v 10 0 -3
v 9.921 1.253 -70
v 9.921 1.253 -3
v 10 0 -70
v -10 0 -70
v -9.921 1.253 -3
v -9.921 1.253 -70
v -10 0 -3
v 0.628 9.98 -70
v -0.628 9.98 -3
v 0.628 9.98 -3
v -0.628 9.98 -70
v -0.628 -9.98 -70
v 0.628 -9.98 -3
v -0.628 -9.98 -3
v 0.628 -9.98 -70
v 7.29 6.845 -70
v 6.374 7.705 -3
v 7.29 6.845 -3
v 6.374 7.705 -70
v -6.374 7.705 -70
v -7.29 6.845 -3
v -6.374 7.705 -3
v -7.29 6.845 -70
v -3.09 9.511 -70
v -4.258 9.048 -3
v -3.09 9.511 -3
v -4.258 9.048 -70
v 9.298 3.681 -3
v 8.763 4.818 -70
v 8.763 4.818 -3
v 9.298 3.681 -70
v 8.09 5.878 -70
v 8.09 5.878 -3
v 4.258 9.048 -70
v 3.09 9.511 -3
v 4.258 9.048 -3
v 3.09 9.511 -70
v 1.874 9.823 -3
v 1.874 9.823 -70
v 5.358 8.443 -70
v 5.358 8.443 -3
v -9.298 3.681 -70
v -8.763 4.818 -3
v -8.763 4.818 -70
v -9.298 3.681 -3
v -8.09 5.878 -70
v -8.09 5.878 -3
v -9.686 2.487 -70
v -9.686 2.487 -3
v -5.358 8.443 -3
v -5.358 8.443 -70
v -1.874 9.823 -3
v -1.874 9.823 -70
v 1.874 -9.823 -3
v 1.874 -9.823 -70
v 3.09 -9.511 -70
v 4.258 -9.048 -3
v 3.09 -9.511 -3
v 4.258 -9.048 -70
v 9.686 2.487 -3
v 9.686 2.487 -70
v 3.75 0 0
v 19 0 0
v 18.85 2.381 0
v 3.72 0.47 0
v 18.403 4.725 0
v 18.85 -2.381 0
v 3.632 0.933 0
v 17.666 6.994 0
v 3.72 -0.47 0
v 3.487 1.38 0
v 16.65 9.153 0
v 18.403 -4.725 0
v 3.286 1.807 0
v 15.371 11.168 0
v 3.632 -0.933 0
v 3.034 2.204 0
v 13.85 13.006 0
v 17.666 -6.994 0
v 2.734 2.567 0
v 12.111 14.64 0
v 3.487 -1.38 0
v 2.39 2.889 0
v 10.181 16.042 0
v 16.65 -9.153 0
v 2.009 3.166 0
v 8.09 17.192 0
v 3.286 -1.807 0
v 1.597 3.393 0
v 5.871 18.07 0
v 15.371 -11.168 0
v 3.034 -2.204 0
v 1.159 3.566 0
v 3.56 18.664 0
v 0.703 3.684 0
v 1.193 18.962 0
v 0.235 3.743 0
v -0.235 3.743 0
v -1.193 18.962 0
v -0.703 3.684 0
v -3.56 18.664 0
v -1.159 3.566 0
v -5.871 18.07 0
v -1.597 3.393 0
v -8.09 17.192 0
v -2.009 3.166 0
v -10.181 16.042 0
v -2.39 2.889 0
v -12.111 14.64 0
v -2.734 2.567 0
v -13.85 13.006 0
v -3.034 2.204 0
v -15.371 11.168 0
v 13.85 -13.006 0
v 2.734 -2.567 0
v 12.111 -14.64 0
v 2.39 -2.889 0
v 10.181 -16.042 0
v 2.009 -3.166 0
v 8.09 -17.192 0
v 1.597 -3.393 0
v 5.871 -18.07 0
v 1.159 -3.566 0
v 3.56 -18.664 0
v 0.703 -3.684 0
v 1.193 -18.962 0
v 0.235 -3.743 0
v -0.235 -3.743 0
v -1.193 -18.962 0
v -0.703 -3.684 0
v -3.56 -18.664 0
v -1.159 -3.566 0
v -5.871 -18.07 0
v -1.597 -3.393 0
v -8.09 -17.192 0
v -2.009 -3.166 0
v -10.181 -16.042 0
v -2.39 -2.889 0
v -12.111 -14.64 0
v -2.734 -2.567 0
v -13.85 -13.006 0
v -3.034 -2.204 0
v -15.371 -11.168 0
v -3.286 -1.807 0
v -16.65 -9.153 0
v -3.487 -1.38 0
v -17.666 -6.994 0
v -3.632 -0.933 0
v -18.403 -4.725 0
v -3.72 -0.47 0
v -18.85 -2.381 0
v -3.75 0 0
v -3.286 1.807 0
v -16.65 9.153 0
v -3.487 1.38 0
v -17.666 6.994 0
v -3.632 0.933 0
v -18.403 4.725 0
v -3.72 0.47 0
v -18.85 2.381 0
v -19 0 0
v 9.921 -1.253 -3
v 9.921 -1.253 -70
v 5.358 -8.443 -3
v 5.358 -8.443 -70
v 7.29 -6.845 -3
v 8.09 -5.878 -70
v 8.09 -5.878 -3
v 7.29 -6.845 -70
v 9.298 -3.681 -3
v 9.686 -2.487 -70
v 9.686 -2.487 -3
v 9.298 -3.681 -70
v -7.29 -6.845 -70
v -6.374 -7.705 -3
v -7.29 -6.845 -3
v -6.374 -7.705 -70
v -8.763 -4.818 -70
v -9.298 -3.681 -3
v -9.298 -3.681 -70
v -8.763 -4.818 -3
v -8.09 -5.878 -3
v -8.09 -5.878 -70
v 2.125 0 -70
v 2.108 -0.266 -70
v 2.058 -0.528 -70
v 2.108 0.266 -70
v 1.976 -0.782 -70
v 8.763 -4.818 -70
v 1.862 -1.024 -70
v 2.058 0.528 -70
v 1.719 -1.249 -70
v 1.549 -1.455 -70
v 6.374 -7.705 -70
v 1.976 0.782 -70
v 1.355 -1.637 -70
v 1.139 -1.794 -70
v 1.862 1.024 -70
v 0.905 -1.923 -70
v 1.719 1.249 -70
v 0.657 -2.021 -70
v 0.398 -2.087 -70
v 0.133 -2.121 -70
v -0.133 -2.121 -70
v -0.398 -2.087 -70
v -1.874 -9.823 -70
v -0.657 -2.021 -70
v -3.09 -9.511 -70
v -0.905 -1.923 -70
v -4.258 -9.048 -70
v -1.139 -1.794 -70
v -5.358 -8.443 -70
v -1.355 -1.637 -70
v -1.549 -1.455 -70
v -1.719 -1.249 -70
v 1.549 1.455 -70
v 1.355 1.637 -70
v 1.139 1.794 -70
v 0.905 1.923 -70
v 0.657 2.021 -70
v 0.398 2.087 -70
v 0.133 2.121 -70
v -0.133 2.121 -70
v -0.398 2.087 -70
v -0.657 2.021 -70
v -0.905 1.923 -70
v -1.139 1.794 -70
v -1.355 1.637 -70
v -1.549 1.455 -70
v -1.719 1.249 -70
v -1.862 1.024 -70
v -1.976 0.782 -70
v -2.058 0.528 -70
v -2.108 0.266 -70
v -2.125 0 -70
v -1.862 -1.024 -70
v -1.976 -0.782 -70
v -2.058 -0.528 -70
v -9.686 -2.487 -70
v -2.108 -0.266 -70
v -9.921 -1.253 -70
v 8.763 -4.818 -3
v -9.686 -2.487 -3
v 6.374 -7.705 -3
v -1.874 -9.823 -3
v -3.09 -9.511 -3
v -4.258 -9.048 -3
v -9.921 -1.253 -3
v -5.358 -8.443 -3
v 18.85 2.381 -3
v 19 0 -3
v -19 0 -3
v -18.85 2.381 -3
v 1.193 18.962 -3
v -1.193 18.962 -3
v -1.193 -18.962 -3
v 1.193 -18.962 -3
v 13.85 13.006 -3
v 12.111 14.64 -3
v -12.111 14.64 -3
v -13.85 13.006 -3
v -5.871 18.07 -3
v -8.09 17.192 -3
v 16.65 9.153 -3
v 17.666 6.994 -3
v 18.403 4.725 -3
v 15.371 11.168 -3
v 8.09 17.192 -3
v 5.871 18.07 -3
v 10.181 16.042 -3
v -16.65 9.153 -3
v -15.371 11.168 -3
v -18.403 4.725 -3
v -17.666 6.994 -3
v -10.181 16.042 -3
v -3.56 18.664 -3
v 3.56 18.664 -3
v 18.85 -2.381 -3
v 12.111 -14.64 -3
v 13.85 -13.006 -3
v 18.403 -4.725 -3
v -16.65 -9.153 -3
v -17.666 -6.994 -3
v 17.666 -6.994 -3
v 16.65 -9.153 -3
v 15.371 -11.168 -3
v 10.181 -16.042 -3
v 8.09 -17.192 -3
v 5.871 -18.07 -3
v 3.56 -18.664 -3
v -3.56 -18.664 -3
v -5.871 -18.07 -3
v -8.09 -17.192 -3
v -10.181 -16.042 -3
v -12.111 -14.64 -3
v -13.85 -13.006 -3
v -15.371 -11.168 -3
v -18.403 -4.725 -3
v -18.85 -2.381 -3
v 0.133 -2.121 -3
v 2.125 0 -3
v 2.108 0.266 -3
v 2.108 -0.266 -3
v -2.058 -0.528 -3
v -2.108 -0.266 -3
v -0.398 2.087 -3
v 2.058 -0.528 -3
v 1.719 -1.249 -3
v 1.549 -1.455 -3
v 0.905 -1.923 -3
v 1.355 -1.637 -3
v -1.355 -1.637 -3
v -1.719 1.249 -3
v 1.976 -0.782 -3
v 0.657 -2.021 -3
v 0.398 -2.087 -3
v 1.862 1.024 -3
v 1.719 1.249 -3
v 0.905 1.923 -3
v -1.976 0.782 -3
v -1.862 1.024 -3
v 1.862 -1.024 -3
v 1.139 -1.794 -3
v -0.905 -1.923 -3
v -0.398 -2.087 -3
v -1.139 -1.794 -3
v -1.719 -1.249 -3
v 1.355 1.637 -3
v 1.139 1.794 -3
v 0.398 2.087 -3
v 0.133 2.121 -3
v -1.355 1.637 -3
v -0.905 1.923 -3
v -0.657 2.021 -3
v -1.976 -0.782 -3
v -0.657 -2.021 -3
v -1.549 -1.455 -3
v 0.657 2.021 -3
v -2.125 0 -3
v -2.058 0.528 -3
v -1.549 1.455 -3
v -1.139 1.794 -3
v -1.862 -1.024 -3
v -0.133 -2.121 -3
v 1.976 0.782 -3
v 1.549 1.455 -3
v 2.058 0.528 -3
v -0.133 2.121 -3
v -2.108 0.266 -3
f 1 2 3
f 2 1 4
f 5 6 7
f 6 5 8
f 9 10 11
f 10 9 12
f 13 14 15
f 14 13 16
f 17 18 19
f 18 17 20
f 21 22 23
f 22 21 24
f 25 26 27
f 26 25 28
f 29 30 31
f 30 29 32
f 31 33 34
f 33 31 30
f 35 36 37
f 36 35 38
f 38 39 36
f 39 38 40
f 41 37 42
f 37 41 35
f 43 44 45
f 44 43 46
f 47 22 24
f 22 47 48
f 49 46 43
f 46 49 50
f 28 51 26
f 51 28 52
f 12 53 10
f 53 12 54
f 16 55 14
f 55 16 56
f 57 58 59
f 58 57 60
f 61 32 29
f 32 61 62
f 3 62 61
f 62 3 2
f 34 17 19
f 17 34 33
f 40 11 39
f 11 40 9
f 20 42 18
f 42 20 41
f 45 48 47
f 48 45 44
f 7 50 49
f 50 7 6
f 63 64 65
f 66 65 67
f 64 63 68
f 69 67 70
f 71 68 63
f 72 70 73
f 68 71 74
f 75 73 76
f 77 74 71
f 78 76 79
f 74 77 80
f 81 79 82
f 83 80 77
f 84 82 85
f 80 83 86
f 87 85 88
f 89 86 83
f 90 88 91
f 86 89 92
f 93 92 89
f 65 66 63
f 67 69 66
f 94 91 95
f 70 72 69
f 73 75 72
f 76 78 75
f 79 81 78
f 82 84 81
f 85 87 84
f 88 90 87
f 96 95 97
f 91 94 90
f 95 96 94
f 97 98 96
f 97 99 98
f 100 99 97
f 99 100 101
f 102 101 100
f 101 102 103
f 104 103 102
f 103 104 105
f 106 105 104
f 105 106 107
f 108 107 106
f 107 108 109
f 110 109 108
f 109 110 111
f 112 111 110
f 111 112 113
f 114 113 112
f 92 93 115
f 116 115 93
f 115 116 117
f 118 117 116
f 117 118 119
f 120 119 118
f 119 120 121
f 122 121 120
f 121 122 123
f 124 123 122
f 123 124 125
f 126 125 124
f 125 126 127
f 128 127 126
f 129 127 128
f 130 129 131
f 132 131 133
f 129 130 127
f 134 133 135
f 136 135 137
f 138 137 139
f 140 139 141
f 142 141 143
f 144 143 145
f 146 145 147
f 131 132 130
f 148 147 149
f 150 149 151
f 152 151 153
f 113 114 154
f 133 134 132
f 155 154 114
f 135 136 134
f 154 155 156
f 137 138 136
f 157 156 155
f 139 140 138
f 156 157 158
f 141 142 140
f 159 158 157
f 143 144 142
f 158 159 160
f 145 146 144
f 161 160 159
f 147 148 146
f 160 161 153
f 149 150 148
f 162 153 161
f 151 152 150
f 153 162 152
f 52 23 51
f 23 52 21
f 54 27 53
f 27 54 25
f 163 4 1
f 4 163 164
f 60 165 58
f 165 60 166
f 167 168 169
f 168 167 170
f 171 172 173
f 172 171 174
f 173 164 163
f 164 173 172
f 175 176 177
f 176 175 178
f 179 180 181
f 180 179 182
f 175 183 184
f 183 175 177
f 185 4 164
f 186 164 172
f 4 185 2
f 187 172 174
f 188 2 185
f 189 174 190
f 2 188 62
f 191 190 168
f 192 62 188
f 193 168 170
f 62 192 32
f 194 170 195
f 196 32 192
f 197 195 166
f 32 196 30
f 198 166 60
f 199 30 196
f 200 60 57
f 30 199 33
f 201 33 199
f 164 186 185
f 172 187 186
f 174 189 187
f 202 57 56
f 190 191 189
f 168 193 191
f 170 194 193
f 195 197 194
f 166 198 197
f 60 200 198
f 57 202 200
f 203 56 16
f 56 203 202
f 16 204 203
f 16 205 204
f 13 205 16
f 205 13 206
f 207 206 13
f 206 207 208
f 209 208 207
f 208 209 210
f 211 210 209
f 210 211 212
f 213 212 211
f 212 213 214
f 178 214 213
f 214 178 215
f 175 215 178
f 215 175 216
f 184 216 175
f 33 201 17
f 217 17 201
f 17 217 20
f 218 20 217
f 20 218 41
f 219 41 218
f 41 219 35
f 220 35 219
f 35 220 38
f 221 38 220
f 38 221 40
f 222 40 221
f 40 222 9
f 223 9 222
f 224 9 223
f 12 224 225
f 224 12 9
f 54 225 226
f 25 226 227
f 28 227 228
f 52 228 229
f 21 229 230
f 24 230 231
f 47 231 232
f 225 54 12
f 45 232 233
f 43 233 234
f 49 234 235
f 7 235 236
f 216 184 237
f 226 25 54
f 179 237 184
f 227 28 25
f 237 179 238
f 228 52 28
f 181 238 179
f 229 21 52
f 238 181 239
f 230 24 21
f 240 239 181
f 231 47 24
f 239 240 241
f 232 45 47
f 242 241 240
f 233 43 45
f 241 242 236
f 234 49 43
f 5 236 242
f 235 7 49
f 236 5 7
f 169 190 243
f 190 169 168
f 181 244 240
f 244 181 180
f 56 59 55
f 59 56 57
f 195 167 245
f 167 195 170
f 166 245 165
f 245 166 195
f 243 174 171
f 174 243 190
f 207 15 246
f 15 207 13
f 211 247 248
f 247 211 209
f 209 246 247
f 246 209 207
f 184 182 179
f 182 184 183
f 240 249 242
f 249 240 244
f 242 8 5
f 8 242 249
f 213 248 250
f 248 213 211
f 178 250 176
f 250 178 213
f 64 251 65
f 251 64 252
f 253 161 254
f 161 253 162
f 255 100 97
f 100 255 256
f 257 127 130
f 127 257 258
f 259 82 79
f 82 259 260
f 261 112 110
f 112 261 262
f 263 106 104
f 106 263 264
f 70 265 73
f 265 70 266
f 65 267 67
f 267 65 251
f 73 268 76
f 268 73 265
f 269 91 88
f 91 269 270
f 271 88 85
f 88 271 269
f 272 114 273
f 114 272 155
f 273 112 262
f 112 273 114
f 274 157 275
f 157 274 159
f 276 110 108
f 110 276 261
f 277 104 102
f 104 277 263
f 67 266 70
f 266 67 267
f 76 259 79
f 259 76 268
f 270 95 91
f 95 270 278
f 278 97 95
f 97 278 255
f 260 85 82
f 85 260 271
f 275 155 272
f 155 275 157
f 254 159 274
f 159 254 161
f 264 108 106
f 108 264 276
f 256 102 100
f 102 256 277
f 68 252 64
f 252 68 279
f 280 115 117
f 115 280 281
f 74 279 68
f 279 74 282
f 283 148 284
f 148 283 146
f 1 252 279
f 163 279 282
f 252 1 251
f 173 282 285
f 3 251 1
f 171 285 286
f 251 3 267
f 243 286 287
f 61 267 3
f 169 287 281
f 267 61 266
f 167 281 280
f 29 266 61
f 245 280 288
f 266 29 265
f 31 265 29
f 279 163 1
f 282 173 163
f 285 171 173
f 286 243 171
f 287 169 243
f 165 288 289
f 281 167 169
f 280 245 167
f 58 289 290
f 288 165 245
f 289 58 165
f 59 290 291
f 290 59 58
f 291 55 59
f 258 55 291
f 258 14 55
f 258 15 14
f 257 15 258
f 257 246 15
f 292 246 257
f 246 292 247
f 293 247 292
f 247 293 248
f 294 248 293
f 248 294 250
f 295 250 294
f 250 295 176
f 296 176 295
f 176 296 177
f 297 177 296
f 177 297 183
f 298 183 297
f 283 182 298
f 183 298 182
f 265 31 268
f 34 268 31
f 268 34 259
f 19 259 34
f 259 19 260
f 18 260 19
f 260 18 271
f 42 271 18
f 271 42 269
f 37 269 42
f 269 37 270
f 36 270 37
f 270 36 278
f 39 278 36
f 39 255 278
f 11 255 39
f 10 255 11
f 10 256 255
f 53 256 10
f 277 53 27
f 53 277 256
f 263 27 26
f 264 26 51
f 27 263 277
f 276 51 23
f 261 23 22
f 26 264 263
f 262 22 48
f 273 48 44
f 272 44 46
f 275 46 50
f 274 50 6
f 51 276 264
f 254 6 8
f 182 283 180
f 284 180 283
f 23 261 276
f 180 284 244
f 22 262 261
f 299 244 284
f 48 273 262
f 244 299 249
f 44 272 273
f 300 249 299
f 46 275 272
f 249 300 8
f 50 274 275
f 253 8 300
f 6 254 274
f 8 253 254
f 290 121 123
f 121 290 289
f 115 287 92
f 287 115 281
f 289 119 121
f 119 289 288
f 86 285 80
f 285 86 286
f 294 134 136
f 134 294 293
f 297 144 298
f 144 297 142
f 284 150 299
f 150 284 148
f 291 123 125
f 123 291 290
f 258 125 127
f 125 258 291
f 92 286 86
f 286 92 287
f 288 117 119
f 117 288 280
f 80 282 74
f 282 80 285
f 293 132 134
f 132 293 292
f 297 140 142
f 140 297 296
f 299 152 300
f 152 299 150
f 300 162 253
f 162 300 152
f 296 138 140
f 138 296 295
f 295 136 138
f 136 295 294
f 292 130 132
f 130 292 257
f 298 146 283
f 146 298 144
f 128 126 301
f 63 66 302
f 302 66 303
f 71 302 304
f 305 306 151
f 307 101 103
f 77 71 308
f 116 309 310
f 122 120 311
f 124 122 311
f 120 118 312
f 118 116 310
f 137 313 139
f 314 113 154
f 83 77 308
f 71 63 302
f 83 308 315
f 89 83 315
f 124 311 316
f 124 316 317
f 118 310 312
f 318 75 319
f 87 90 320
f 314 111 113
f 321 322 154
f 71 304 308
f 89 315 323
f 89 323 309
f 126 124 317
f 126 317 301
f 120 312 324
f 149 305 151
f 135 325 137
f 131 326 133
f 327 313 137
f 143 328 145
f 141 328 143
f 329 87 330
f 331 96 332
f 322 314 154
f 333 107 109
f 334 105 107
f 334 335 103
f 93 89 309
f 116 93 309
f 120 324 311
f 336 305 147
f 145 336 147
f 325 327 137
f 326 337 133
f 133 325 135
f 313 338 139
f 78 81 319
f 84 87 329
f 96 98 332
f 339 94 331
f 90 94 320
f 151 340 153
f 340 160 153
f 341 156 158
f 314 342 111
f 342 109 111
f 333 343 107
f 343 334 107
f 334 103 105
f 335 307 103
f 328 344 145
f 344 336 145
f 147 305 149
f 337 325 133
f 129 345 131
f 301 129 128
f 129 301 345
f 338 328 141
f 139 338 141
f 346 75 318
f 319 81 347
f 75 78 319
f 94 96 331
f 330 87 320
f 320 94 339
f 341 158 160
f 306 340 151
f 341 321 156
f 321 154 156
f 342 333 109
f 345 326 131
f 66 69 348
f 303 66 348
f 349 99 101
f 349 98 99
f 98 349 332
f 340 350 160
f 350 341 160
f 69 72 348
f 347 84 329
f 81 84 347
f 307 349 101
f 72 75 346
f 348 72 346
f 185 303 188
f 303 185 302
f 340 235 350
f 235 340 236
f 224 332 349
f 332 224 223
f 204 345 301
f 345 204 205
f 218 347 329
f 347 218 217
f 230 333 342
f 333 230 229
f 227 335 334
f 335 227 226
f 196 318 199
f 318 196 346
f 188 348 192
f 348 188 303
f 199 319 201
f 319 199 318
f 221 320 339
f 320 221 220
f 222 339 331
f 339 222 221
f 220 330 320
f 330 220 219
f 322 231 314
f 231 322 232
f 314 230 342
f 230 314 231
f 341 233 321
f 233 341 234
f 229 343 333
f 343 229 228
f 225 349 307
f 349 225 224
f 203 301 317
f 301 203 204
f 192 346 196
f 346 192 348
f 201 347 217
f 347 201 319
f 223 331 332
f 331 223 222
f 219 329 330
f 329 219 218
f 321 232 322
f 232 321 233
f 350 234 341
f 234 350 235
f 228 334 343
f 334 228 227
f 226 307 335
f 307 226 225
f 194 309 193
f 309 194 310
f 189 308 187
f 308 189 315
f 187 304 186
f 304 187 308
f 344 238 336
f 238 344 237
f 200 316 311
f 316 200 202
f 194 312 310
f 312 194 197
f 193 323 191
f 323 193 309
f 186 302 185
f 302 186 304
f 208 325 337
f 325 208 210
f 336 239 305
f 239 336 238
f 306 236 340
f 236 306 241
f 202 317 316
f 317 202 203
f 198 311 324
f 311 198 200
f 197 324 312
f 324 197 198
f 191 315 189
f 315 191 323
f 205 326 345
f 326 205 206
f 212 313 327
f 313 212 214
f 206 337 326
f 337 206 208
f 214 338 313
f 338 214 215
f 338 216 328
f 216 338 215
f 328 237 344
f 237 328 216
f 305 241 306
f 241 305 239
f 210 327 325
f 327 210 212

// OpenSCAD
$fn = 50;


difference() {
	union() {
		translate(v = [0, 0, -70.0000000000]) {
			cylinder(h = 70, r = 10.0000000000);
		}
		translate(v = [0, 0, -3.0000000000]) {
			cylinder(h = 3, r = 19.0000000000);
		}
	}
	union() {
		translate(v = [0, 0, 0]) {
			rotate(a = [0, 0, 0]) {
				difference() {
					union() {
						#translate(v = [0, 0, -70.0000000000]) {
							cylinder(h = 70, r = 2.0000000000);
						}
						#translate(v = [0, 0, -3]) {
							cylinder(h = 3, r = 10.0000000000, r1 = 2.1250000000, r2 = 3.7500000000);
						}
						#translate(v = [0, 0, -70.0000000000]) {
							cylinder(h = 70, r = 2.1250000000);
						}
						#translate(v = [0, 0, -70.0000000000]) {
							cylinder(h = 70, r = 2.0000000000);
						}
					}
					union();
				}
			}
		}
	}
}
